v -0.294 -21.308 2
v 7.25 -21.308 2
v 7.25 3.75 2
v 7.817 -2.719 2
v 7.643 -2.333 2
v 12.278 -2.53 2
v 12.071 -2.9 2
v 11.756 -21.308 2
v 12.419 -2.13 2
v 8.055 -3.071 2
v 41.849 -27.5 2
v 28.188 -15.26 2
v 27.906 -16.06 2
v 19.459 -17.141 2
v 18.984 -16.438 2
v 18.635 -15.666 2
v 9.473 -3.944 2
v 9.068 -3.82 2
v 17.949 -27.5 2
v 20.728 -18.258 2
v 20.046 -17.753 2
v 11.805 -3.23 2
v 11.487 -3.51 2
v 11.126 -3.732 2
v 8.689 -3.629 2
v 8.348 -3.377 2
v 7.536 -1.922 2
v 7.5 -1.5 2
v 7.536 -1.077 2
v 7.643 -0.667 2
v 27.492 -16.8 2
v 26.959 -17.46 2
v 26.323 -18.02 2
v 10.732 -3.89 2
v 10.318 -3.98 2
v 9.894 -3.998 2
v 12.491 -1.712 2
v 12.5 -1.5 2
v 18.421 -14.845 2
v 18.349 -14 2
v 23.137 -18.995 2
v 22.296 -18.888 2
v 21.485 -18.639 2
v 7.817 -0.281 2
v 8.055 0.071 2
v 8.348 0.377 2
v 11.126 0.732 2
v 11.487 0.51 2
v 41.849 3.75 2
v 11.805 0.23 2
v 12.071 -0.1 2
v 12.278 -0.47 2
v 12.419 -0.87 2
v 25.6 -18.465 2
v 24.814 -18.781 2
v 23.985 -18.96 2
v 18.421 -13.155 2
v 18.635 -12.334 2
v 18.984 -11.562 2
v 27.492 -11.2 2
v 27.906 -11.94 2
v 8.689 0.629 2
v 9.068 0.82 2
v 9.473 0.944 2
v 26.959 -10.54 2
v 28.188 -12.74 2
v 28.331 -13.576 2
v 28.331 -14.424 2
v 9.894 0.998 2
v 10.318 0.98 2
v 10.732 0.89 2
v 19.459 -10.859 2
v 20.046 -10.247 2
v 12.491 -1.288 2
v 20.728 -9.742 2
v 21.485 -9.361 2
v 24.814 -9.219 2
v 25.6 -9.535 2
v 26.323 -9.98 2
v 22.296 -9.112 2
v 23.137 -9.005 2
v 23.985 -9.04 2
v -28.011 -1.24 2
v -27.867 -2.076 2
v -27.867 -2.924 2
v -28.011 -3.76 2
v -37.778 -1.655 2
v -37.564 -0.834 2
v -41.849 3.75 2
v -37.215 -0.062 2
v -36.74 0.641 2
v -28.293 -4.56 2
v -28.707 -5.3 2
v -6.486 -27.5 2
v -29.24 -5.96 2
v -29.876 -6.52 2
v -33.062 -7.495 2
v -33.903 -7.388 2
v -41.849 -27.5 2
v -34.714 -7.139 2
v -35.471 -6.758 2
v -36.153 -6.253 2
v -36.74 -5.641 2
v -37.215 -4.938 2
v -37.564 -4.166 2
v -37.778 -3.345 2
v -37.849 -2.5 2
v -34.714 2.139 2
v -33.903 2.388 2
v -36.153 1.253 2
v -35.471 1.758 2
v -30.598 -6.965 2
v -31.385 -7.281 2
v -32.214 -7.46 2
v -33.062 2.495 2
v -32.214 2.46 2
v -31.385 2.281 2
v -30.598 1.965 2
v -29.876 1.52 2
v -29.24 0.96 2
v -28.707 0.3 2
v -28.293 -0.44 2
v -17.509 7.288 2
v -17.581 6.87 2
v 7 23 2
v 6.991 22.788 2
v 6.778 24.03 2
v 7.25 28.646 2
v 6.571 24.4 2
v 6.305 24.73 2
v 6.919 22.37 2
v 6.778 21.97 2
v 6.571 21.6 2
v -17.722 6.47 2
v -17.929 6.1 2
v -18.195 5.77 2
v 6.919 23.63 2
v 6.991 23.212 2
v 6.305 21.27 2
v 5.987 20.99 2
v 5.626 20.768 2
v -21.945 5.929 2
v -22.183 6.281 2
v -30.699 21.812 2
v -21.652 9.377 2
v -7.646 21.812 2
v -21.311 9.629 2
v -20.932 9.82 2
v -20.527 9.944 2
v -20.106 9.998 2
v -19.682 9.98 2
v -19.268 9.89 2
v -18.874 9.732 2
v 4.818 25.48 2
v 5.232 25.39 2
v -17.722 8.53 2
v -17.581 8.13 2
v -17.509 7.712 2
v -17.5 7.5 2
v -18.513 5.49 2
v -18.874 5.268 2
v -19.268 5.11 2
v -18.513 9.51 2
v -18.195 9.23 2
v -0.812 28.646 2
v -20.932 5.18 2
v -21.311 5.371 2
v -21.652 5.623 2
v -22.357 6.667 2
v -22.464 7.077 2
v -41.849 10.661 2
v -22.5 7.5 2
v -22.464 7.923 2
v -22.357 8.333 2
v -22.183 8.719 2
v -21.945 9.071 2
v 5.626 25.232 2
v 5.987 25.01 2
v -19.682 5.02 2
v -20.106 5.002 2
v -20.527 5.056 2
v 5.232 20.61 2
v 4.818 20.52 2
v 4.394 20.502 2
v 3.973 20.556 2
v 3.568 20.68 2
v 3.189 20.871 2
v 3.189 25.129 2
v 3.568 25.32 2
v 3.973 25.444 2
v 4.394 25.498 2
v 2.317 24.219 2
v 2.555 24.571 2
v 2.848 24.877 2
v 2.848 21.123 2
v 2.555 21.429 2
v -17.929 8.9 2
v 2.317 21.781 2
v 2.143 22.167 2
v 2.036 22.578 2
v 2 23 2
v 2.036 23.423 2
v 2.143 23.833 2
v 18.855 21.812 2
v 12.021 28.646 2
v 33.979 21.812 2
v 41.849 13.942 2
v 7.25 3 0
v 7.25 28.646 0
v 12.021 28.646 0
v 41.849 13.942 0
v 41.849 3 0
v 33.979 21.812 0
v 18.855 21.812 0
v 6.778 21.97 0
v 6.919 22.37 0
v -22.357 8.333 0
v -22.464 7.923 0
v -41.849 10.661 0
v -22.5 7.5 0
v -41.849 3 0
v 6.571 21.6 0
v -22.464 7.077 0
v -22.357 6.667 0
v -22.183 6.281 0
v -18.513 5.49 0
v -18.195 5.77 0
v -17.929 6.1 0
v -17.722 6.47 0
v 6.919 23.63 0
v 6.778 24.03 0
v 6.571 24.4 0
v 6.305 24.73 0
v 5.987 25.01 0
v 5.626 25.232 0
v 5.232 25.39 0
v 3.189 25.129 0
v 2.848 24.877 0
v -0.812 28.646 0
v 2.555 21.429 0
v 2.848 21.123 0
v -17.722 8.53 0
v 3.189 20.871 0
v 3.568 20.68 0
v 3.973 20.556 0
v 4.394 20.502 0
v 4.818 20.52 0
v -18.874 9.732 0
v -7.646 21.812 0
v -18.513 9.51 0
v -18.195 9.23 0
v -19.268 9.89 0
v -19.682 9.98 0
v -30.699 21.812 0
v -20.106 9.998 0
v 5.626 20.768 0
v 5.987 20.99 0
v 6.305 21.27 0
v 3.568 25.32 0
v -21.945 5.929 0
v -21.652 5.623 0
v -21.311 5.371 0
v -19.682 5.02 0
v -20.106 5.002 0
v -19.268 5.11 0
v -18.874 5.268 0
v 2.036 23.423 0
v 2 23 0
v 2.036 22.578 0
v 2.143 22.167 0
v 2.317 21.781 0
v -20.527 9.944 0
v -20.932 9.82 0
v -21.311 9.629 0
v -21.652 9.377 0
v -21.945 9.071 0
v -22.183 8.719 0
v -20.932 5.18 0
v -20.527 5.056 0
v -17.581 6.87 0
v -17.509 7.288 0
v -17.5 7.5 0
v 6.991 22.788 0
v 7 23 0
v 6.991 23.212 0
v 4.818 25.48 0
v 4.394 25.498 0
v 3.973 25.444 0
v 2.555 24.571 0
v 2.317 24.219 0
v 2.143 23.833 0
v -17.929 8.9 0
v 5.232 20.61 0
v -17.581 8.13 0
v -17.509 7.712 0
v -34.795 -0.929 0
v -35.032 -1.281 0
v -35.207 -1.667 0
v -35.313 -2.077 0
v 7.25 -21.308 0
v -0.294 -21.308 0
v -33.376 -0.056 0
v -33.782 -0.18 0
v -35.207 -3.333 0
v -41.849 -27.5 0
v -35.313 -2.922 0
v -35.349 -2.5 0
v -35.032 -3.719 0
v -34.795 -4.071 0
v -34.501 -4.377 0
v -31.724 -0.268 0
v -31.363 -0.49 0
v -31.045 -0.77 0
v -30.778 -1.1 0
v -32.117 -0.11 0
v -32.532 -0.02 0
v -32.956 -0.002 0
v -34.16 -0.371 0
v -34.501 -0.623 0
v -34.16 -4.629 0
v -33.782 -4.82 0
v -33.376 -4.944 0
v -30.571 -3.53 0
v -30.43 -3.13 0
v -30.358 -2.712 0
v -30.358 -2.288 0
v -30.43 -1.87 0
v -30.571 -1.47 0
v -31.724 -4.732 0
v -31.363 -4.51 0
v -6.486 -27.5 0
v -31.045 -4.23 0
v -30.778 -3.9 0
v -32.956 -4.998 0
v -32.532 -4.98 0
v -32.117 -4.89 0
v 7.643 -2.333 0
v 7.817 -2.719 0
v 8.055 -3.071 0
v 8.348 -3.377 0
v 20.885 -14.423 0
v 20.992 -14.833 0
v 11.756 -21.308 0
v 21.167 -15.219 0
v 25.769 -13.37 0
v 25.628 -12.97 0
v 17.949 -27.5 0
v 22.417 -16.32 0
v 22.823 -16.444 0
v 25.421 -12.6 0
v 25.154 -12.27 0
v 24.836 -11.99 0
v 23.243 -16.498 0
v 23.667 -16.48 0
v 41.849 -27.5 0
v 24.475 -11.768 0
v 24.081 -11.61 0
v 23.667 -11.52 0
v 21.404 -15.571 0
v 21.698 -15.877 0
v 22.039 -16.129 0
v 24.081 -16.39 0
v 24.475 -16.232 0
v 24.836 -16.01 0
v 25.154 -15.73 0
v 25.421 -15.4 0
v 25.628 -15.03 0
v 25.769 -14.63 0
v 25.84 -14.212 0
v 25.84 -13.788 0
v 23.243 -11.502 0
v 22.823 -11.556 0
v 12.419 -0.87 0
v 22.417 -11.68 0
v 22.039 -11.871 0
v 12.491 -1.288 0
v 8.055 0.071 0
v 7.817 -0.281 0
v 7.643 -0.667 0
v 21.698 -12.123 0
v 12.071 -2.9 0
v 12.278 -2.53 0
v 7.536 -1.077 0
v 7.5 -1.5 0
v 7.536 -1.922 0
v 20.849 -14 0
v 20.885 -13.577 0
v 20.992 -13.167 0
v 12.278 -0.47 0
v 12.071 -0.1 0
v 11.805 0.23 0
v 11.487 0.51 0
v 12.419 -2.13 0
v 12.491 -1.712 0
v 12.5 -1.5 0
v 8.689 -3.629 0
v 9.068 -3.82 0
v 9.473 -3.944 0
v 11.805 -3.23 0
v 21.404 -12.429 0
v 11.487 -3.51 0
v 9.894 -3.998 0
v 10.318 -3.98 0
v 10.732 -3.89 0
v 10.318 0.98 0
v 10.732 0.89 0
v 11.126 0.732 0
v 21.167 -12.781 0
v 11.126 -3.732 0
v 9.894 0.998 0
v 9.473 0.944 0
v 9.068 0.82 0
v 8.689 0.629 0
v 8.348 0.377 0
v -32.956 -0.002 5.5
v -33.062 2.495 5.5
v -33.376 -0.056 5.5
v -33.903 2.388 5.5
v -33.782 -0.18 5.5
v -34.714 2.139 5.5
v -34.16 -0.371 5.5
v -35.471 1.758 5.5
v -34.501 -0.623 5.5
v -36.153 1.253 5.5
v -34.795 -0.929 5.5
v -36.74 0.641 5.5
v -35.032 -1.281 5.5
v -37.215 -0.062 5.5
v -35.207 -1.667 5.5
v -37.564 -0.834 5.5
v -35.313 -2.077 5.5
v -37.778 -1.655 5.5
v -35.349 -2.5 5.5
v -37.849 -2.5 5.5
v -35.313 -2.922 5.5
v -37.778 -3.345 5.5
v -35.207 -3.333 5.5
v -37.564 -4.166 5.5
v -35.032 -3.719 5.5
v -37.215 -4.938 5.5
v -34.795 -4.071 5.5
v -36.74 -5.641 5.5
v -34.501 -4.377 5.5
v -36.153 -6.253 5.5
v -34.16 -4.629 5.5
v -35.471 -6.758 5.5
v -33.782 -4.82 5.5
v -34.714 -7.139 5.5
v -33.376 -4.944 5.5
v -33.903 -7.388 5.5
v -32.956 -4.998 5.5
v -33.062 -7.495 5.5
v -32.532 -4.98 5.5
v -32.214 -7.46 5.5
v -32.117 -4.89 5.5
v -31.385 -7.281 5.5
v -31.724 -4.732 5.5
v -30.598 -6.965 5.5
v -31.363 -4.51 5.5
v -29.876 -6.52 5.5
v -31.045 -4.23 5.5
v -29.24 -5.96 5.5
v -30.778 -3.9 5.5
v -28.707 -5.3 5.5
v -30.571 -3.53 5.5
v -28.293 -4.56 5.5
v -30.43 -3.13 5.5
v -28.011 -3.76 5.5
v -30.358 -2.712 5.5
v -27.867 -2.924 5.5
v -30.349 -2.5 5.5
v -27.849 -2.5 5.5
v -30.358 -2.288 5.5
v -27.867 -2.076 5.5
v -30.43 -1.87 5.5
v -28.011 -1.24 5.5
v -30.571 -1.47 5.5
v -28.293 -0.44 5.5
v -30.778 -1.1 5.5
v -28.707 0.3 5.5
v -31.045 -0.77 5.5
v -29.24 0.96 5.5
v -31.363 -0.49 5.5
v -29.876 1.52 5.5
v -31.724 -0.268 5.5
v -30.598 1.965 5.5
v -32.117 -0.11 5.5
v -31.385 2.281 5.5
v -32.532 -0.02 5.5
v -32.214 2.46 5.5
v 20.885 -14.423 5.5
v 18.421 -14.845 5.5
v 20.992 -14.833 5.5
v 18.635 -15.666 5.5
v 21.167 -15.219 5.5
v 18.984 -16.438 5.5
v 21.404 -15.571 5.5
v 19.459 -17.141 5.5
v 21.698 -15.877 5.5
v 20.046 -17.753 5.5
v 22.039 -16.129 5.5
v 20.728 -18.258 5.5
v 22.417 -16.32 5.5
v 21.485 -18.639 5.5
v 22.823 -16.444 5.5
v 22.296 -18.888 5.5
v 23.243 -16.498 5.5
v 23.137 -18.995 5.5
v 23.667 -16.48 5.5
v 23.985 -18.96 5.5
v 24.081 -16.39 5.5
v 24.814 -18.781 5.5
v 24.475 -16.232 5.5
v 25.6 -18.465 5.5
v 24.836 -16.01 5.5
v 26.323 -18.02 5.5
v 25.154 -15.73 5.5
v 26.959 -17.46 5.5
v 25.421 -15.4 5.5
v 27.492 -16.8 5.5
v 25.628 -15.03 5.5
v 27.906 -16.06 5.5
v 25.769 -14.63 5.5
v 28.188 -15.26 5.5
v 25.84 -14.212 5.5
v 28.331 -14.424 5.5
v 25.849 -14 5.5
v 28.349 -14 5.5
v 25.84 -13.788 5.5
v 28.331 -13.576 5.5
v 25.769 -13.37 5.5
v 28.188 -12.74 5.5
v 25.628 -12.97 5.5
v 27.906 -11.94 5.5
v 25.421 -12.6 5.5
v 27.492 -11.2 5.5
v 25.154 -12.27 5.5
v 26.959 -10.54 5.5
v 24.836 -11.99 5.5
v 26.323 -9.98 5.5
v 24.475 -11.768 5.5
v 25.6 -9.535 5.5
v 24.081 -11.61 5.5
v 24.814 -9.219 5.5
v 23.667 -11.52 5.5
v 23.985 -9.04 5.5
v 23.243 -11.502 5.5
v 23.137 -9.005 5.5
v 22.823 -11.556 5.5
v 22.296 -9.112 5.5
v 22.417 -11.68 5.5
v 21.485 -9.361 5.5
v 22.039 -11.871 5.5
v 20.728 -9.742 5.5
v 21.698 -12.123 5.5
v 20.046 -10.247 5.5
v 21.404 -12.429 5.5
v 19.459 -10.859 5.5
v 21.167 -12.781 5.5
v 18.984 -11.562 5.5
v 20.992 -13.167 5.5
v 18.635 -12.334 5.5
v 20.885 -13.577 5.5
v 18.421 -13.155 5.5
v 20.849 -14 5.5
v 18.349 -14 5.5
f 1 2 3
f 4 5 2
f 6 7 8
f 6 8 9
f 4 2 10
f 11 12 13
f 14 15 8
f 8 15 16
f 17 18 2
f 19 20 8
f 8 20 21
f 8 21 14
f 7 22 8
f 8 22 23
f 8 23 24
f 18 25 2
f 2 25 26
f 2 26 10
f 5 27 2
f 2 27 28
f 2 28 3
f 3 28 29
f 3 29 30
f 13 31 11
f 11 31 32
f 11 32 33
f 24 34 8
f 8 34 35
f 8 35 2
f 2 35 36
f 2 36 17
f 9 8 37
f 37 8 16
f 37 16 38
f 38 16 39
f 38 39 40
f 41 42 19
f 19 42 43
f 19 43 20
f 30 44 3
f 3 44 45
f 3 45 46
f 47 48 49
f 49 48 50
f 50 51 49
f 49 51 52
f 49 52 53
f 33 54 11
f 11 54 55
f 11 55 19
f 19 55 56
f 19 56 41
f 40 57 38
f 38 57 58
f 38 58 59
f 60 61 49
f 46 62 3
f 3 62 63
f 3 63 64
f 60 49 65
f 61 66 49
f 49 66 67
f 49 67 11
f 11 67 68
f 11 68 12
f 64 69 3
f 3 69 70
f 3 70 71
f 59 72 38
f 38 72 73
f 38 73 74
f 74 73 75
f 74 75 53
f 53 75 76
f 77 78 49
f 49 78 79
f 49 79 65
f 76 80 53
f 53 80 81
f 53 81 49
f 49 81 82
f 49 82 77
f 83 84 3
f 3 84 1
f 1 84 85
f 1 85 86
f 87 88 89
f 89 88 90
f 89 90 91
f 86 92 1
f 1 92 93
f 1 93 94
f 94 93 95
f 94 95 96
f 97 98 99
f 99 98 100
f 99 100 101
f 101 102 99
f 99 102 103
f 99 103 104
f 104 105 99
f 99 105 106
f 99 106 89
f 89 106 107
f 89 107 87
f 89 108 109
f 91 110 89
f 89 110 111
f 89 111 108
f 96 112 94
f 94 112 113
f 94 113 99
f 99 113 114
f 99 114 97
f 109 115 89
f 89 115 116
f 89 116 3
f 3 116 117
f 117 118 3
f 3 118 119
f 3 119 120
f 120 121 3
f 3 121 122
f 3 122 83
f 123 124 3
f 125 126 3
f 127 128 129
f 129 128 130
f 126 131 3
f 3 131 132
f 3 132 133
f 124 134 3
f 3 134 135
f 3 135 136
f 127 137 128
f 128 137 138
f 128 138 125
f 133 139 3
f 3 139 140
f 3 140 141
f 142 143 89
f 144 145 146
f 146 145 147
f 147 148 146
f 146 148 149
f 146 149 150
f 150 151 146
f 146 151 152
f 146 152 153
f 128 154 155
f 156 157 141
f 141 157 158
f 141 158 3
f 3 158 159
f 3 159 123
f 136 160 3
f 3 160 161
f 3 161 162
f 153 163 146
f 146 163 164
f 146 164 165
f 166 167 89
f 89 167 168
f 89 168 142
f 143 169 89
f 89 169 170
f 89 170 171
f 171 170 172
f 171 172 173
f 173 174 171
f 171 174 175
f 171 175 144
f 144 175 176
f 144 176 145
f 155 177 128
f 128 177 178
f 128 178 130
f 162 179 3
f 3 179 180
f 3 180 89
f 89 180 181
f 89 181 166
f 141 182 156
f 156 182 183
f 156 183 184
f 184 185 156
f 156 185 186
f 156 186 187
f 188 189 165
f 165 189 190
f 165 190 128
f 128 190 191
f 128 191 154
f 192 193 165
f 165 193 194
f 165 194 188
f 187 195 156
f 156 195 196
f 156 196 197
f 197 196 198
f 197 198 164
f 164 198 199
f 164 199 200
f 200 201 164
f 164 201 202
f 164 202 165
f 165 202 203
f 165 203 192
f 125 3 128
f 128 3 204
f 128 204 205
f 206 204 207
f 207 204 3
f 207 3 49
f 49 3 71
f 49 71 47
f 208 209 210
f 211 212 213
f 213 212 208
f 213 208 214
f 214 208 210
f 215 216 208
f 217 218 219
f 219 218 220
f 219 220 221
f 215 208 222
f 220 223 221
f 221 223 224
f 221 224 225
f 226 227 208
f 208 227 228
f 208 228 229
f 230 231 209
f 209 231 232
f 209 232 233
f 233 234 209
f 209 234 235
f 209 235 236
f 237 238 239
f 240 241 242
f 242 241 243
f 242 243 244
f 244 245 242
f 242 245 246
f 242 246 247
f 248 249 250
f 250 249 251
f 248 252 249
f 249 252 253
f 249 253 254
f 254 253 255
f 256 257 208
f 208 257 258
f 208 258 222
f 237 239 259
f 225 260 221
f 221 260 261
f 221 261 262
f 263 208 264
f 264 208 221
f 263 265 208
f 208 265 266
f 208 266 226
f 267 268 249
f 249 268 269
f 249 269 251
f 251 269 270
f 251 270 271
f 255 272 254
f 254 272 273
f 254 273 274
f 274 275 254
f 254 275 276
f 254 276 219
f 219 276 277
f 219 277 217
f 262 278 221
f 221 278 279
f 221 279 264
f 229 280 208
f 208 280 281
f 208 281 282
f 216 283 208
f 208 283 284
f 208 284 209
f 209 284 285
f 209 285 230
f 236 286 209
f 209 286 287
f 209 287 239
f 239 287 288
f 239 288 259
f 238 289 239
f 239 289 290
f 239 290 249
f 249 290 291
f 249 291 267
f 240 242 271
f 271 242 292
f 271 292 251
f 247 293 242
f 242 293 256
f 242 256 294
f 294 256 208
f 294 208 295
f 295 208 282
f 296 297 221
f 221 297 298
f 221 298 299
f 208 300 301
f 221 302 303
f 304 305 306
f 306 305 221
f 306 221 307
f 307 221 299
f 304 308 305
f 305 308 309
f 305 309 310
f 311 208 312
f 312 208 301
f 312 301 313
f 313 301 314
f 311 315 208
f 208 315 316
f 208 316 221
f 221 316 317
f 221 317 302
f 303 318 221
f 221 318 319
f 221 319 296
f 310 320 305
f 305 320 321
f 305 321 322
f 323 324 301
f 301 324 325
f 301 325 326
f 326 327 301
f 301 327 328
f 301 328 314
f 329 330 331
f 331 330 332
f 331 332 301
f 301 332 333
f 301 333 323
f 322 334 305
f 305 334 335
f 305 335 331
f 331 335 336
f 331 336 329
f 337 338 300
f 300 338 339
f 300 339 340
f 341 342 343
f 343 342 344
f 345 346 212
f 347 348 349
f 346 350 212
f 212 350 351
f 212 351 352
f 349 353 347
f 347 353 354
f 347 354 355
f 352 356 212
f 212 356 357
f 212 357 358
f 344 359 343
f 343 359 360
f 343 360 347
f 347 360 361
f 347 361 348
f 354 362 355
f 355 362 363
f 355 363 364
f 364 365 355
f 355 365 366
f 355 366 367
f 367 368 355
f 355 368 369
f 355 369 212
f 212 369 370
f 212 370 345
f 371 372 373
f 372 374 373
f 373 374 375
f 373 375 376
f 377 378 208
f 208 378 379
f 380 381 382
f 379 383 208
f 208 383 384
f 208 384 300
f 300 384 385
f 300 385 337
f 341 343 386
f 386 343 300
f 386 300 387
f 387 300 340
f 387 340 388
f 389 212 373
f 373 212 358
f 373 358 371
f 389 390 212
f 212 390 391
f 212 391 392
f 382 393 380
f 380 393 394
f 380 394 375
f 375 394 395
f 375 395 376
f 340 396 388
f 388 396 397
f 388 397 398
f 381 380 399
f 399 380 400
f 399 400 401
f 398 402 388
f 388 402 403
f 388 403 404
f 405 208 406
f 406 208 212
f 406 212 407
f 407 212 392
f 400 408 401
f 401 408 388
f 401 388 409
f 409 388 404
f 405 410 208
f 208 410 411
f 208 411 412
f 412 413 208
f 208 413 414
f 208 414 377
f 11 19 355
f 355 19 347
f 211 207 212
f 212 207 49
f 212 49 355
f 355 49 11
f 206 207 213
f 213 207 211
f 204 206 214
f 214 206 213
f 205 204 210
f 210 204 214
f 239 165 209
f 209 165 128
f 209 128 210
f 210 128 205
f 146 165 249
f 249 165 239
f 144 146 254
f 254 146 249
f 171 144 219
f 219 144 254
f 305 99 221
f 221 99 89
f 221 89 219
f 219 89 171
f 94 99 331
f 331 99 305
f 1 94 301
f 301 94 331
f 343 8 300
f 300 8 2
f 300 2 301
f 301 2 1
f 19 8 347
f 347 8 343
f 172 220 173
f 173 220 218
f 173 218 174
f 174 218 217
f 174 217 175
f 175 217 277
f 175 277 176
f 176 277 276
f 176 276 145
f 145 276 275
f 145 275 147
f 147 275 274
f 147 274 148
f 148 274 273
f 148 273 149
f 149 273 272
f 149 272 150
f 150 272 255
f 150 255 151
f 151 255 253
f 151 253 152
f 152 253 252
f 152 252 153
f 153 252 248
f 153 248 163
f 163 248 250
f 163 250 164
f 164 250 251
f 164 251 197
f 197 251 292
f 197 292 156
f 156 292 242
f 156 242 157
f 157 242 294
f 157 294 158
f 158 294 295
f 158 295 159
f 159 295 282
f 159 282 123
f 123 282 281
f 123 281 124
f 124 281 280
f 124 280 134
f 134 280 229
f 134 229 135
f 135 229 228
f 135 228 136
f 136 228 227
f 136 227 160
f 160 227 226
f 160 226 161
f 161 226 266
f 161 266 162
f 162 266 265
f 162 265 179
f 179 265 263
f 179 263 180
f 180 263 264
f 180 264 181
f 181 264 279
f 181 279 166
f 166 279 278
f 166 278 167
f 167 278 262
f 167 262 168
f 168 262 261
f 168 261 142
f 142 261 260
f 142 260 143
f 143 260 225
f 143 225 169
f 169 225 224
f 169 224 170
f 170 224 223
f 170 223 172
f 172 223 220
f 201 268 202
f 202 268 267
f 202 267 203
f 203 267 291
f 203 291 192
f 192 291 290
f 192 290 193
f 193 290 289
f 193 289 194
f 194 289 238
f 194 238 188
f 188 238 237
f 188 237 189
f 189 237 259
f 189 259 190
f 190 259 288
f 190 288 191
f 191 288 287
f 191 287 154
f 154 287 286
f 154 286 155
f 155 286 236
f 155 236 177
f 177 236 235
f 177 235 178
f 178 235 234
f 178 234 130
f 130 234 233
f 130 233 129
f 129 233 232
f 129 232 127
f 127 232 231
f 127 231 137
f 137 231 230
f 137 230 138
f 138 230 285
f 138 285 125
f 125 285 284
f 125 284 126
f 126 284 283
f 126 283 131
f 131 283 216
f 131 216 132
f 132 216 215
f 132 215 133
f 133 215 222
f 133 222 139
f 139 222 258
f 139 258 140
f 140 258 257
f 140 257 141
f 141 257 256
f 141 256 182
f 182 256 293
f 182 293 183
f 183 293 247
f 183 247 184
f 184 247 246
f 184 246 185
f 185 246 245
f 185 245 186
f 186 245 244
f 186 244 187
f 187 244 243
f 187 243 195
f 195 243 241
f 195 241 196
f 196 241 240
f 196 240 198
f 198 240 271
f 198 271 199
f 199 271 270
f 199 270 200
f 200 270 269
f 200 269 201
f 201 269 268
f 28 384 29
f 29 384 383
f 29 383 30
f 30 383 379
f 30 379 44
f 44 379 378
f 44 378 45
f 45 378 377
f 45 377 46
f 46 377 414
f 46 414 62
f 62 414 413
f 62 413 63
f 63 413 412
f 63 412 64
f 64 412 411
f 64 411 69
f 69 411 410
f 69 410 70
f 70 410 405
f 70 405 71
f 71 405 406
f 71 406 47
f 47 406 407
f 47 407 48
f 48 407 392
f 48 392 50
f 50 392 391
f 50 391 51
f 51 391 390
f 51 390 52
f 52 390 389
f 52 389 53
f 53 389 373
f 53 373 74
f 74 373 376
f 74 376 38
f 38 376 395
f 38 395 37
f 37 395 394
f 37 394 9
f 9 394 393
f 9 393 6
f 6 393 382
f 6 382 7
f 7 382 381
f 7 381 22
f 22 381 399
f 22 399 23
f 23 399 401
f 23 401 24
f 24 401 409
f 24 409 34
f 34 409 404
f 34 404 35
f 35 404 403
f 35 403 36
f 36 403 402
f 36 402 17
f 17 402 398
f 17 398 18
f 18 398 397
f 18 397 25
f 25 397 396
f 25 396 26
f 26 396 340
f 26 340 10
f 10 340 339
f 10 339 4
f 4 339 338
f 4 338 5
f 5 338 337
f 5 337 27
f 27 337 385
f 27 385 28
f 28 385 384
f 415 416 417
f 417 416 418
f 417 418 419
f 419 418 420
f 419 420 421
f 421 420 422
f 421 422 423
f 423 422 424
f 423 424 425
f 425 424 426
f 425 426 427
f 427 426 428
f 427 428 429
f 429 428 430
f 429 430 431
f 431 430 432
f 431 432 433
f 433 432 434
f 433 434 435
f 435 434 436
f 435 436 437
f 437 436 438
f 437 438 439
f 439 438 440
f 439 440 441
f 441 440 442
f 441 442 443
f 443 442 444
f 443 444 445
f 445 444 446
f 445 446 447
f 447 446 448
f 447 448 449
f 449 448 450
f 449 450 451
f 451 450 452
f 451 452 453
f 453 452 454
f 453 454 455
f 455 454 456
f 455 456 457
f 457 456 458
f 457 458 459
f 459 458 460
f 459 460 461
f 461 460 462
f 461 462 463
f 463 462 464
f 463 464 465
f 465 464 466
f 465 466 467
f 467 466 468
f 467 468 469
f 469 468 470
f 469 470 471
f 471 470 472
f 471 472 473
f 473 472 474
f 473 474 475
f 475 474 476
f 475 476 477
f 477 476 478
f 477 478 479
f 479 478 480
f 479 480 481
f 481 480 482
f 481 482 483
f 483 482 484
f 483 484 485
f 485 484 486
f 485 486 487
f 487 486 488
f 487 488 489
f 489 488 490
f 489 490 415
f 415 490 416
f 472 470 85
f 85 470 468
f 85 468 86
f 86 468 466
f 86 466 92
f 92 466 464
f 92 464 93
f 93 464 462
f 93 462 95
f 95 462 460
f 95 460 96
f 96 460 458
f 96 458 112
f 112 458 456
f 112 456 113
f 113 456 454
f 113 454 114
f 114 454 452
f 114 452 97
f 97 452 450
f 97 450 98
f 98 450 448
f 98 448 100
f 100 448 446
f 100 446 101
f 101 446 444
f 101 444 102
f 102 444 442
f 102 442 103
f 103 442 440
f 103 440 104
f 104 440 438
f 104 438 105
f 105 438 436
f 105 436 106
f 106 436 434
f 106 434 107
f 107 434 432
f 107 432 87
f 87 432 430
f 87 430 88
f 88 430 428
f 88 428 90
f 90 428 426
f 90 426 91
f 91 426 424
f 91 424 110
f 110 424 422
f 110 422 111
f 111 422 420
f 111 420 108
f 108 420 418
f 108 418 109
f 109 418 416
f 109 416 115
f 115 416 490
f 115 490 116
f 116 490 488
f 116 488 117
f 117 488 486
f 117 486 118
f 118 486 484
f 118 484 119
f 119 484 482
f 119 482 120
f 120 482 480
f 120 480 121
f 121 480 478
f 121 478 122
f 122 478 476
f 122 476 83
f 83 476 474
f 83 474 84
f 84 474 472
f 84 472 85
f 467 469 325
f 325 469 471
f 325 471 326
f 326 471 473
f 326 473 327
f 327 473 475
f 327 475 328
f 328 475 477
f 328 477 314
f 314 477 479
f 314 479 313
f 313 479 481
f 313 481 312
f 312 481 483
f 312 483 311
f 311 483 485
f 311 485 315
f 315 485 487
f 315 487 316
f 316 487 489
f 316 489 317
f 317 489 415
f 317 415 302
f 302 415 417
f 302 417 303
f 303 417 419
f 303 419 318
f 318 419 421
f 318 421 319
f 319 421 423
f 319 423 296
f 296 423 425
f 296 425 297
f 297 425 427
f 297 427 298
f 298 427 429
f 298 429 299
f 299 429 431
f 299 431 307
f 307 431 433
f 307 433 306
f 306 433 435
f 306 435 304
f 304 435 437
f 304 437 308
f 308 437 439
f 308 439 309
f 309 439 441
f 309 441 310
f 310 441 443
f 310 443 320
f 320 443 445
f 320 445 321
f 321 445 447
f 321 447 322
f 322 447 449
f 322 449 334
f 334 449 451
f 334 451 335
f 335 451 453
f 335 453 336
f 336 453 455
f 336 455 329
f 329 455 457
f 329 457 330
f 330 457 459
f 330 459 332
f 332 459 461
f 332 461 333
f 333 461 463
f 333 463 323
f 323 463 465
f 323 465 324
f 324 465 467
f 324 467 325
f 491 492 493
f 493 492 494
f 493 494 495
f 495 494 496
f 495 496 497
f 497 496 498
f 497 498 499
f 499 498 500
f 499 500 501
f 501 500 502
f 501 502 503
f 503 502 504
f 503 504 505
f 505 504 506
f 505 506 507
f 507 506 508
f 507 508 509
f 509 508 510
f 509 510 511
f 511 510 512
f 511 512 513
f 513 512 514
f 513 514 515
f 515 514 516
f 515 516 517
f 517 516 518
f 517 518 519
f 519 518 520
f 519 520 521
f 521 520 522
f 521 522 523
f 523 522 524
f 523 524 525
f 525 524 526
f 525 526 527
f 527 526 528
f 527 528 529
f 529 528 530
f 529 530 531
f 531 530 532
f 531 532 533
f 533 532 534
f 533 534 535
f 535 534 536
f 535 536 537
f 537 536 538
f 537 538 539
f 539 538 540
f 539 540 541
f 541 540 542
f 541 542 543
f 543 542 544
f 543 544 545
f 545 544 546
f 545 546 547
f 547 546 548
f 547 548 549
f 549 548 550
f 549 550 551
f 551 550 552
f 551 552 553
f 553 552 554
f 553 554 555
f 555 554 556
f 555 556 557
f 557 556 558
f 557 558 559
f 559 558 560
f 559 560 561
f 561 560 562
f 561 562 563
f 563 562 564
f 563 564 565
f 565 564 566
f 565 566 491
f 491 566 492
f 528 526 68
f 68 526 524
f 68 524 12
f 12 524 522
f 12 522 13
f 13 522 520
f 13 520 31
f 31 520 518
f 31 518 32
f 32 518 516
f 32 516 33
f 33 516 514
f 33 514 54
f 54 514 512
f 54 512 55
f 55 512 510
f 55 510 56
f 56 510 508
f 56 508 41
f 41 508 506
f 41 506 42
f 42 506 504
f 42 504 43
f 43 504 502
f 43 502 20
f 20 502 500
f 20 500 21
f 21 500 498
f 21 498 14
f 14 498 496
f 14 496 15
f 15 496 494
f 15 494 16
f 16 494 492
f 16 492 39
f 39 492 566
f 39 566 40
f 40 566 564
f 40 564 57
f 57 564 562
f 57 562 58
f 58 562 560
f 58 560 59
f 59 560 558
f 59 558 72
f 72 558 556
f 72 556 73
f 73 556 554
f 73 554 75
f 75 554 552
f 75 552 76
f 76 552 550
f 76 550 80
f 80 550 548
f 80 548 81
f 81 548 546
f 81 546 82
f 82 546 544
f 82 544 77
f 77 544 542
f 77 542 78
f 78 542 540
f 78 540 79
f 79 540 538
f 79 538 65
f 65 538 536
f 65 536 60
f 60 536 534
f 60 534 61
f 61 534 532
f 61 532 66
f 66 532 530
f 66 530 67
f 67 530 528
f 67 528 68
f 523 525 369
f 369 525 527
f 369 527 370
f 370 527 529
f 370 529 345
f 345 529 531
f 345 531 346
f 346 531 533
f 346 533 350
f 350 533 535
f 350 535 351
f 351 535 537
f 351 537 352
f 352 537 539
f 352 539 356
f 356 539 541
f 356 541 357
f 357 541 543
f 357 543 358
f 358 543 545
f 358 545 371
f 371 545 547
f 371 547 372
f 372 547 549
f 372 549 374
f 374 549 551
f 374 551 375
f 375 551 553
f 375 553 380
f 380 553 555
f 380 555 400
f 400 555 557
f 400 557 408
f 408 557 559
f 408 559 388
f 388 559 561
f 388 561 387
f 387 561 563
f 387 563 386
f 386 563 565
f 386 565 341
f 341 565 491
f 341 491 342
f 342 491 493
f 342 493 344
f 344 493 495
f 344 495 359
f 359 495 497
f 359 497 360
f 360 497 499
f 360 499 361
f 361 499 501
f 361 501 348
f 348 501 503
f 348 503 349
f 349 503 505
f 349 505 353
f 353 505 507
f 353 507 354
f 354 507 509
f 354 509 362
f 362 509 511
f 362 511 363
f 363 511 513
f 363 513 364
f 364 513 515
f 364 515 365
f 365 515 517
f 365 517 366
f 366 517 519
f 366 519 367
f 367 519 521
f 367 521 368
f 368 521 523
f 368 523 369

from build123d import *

# Parameters (mm, degrees)
SKETCH_1_R          = 2.5
EXTRUDE_1_DEPTH     = 2
SKETCH_2_R          = 5
SKETCH_2_R_2        = 2.5
EXTRUDE_3_DEPTH     = 3.5
CUT_EXTRUDE_1_REACH = 52.835
SKETCH_2_2_R        = 2.5


with BuildPart() as part:
    # 스케치1 → 보스-돌출1 (new body)
    with BuildSketch(Plane.XY):
        Polygon((-6.486435689, -27.5), (-0.294279728, -21.307844039), (11.756387017, -21.307844039), (17.948542978, -27.5), (41.84943397, -27.5), (41.84943397, 13.941912539), (33.979452522, 21.811893988), (18.854924629, 21.811893988), (12.020959992, 28.645858624), (-0.811850652, 28.645858624), (-7.645815288, 21.811893988), (-30.698580055, 21.811893988), (-41.84943397, 10.661040072), (-41.84943397, -27.5), align=None)
        with Locations((-20, 7.5)):
            Circle(SKETCH_1_R, mode=Mode.SUBTRACT)
        with Locations((4.5, 23)):
            Circle(SKETCH_1_R, mode=Mode.SUBTRACT)
        with Locations((10, -1.5)):
            Circle(SKETCH_1_R, mode=Mode.SUBTRACT)
    extrude(amount=EXTRUDE_1_DEPTH)

    # 스케치2 → 보스-돌출3 (add)
    # profile 1 of 2: a face of its own
    with BuildSketch(Plane.XY.offset(2)):
        with Locations((-32.84943397, -2.5)):
            Circle(SKETCH_2_R)
        with Locations((-32.84943397, -2.5)):
            Circle(SKETCH_2_R_2, mode=Mode.SUBTRACT)
    # profile 2 of 2: a face of its own
    with BuildSketch(Plane.XY.offset(2)):
        with Locations((23.34943397, -14)):
            Circle(SKETCH_2_R)
        with Locations((23.34943397, -14)):
            Circle(SKETCH_2_R_2, mode=Mode.SUBTRACT)
    extrude(amount=EXTRUDE_3_DEPTH)

    # 스케치2<2> → 컷-돌출1 (cut, up to next)
    with BuildSketch(Plane.XY.offset(2), mode=Mode.PRIVATE) as cut_extrude_1_sk1:
        with Locations((-32.84943397, -2.5)):
            Circle(SKETCH_2_2_R)
    cut_extrude_1_tool1 = extrude(cut_extrude_1_sk1.sketch, amount=-CUT_EXTRUDE_1_REACH, mode=Mode.PRIVATE) & part.part
    # 스케치2<2> → 컷-돌출1 (cut, up to next)
    with BuildSketch(Plane.XY.offset(2), mode=Mode.PRIVATE) as cut_extrude_1_sk2:
        with Locations((23.34943397, -14)):
            Circle(SKETCH_2_2_R)
    cut_extrude_1_tool2 = extrude(cut_extrude_1_sk2.sketch, amount=-CUT_EXTRUDE_1_REACH, mode=Mode.PRIVATE) & part.part
    add(cut_extrude_1_tool1.solids().sort_by_distance((-32.849434, -2.5, 2))[0], mode=Mode.SUBTRACT)
    add(cut_extrude_1_tool2.solids().sort_by_distance((23.349434, -14, 2))[0], mode=Mode.SUBTRACT)


solid = part.part
